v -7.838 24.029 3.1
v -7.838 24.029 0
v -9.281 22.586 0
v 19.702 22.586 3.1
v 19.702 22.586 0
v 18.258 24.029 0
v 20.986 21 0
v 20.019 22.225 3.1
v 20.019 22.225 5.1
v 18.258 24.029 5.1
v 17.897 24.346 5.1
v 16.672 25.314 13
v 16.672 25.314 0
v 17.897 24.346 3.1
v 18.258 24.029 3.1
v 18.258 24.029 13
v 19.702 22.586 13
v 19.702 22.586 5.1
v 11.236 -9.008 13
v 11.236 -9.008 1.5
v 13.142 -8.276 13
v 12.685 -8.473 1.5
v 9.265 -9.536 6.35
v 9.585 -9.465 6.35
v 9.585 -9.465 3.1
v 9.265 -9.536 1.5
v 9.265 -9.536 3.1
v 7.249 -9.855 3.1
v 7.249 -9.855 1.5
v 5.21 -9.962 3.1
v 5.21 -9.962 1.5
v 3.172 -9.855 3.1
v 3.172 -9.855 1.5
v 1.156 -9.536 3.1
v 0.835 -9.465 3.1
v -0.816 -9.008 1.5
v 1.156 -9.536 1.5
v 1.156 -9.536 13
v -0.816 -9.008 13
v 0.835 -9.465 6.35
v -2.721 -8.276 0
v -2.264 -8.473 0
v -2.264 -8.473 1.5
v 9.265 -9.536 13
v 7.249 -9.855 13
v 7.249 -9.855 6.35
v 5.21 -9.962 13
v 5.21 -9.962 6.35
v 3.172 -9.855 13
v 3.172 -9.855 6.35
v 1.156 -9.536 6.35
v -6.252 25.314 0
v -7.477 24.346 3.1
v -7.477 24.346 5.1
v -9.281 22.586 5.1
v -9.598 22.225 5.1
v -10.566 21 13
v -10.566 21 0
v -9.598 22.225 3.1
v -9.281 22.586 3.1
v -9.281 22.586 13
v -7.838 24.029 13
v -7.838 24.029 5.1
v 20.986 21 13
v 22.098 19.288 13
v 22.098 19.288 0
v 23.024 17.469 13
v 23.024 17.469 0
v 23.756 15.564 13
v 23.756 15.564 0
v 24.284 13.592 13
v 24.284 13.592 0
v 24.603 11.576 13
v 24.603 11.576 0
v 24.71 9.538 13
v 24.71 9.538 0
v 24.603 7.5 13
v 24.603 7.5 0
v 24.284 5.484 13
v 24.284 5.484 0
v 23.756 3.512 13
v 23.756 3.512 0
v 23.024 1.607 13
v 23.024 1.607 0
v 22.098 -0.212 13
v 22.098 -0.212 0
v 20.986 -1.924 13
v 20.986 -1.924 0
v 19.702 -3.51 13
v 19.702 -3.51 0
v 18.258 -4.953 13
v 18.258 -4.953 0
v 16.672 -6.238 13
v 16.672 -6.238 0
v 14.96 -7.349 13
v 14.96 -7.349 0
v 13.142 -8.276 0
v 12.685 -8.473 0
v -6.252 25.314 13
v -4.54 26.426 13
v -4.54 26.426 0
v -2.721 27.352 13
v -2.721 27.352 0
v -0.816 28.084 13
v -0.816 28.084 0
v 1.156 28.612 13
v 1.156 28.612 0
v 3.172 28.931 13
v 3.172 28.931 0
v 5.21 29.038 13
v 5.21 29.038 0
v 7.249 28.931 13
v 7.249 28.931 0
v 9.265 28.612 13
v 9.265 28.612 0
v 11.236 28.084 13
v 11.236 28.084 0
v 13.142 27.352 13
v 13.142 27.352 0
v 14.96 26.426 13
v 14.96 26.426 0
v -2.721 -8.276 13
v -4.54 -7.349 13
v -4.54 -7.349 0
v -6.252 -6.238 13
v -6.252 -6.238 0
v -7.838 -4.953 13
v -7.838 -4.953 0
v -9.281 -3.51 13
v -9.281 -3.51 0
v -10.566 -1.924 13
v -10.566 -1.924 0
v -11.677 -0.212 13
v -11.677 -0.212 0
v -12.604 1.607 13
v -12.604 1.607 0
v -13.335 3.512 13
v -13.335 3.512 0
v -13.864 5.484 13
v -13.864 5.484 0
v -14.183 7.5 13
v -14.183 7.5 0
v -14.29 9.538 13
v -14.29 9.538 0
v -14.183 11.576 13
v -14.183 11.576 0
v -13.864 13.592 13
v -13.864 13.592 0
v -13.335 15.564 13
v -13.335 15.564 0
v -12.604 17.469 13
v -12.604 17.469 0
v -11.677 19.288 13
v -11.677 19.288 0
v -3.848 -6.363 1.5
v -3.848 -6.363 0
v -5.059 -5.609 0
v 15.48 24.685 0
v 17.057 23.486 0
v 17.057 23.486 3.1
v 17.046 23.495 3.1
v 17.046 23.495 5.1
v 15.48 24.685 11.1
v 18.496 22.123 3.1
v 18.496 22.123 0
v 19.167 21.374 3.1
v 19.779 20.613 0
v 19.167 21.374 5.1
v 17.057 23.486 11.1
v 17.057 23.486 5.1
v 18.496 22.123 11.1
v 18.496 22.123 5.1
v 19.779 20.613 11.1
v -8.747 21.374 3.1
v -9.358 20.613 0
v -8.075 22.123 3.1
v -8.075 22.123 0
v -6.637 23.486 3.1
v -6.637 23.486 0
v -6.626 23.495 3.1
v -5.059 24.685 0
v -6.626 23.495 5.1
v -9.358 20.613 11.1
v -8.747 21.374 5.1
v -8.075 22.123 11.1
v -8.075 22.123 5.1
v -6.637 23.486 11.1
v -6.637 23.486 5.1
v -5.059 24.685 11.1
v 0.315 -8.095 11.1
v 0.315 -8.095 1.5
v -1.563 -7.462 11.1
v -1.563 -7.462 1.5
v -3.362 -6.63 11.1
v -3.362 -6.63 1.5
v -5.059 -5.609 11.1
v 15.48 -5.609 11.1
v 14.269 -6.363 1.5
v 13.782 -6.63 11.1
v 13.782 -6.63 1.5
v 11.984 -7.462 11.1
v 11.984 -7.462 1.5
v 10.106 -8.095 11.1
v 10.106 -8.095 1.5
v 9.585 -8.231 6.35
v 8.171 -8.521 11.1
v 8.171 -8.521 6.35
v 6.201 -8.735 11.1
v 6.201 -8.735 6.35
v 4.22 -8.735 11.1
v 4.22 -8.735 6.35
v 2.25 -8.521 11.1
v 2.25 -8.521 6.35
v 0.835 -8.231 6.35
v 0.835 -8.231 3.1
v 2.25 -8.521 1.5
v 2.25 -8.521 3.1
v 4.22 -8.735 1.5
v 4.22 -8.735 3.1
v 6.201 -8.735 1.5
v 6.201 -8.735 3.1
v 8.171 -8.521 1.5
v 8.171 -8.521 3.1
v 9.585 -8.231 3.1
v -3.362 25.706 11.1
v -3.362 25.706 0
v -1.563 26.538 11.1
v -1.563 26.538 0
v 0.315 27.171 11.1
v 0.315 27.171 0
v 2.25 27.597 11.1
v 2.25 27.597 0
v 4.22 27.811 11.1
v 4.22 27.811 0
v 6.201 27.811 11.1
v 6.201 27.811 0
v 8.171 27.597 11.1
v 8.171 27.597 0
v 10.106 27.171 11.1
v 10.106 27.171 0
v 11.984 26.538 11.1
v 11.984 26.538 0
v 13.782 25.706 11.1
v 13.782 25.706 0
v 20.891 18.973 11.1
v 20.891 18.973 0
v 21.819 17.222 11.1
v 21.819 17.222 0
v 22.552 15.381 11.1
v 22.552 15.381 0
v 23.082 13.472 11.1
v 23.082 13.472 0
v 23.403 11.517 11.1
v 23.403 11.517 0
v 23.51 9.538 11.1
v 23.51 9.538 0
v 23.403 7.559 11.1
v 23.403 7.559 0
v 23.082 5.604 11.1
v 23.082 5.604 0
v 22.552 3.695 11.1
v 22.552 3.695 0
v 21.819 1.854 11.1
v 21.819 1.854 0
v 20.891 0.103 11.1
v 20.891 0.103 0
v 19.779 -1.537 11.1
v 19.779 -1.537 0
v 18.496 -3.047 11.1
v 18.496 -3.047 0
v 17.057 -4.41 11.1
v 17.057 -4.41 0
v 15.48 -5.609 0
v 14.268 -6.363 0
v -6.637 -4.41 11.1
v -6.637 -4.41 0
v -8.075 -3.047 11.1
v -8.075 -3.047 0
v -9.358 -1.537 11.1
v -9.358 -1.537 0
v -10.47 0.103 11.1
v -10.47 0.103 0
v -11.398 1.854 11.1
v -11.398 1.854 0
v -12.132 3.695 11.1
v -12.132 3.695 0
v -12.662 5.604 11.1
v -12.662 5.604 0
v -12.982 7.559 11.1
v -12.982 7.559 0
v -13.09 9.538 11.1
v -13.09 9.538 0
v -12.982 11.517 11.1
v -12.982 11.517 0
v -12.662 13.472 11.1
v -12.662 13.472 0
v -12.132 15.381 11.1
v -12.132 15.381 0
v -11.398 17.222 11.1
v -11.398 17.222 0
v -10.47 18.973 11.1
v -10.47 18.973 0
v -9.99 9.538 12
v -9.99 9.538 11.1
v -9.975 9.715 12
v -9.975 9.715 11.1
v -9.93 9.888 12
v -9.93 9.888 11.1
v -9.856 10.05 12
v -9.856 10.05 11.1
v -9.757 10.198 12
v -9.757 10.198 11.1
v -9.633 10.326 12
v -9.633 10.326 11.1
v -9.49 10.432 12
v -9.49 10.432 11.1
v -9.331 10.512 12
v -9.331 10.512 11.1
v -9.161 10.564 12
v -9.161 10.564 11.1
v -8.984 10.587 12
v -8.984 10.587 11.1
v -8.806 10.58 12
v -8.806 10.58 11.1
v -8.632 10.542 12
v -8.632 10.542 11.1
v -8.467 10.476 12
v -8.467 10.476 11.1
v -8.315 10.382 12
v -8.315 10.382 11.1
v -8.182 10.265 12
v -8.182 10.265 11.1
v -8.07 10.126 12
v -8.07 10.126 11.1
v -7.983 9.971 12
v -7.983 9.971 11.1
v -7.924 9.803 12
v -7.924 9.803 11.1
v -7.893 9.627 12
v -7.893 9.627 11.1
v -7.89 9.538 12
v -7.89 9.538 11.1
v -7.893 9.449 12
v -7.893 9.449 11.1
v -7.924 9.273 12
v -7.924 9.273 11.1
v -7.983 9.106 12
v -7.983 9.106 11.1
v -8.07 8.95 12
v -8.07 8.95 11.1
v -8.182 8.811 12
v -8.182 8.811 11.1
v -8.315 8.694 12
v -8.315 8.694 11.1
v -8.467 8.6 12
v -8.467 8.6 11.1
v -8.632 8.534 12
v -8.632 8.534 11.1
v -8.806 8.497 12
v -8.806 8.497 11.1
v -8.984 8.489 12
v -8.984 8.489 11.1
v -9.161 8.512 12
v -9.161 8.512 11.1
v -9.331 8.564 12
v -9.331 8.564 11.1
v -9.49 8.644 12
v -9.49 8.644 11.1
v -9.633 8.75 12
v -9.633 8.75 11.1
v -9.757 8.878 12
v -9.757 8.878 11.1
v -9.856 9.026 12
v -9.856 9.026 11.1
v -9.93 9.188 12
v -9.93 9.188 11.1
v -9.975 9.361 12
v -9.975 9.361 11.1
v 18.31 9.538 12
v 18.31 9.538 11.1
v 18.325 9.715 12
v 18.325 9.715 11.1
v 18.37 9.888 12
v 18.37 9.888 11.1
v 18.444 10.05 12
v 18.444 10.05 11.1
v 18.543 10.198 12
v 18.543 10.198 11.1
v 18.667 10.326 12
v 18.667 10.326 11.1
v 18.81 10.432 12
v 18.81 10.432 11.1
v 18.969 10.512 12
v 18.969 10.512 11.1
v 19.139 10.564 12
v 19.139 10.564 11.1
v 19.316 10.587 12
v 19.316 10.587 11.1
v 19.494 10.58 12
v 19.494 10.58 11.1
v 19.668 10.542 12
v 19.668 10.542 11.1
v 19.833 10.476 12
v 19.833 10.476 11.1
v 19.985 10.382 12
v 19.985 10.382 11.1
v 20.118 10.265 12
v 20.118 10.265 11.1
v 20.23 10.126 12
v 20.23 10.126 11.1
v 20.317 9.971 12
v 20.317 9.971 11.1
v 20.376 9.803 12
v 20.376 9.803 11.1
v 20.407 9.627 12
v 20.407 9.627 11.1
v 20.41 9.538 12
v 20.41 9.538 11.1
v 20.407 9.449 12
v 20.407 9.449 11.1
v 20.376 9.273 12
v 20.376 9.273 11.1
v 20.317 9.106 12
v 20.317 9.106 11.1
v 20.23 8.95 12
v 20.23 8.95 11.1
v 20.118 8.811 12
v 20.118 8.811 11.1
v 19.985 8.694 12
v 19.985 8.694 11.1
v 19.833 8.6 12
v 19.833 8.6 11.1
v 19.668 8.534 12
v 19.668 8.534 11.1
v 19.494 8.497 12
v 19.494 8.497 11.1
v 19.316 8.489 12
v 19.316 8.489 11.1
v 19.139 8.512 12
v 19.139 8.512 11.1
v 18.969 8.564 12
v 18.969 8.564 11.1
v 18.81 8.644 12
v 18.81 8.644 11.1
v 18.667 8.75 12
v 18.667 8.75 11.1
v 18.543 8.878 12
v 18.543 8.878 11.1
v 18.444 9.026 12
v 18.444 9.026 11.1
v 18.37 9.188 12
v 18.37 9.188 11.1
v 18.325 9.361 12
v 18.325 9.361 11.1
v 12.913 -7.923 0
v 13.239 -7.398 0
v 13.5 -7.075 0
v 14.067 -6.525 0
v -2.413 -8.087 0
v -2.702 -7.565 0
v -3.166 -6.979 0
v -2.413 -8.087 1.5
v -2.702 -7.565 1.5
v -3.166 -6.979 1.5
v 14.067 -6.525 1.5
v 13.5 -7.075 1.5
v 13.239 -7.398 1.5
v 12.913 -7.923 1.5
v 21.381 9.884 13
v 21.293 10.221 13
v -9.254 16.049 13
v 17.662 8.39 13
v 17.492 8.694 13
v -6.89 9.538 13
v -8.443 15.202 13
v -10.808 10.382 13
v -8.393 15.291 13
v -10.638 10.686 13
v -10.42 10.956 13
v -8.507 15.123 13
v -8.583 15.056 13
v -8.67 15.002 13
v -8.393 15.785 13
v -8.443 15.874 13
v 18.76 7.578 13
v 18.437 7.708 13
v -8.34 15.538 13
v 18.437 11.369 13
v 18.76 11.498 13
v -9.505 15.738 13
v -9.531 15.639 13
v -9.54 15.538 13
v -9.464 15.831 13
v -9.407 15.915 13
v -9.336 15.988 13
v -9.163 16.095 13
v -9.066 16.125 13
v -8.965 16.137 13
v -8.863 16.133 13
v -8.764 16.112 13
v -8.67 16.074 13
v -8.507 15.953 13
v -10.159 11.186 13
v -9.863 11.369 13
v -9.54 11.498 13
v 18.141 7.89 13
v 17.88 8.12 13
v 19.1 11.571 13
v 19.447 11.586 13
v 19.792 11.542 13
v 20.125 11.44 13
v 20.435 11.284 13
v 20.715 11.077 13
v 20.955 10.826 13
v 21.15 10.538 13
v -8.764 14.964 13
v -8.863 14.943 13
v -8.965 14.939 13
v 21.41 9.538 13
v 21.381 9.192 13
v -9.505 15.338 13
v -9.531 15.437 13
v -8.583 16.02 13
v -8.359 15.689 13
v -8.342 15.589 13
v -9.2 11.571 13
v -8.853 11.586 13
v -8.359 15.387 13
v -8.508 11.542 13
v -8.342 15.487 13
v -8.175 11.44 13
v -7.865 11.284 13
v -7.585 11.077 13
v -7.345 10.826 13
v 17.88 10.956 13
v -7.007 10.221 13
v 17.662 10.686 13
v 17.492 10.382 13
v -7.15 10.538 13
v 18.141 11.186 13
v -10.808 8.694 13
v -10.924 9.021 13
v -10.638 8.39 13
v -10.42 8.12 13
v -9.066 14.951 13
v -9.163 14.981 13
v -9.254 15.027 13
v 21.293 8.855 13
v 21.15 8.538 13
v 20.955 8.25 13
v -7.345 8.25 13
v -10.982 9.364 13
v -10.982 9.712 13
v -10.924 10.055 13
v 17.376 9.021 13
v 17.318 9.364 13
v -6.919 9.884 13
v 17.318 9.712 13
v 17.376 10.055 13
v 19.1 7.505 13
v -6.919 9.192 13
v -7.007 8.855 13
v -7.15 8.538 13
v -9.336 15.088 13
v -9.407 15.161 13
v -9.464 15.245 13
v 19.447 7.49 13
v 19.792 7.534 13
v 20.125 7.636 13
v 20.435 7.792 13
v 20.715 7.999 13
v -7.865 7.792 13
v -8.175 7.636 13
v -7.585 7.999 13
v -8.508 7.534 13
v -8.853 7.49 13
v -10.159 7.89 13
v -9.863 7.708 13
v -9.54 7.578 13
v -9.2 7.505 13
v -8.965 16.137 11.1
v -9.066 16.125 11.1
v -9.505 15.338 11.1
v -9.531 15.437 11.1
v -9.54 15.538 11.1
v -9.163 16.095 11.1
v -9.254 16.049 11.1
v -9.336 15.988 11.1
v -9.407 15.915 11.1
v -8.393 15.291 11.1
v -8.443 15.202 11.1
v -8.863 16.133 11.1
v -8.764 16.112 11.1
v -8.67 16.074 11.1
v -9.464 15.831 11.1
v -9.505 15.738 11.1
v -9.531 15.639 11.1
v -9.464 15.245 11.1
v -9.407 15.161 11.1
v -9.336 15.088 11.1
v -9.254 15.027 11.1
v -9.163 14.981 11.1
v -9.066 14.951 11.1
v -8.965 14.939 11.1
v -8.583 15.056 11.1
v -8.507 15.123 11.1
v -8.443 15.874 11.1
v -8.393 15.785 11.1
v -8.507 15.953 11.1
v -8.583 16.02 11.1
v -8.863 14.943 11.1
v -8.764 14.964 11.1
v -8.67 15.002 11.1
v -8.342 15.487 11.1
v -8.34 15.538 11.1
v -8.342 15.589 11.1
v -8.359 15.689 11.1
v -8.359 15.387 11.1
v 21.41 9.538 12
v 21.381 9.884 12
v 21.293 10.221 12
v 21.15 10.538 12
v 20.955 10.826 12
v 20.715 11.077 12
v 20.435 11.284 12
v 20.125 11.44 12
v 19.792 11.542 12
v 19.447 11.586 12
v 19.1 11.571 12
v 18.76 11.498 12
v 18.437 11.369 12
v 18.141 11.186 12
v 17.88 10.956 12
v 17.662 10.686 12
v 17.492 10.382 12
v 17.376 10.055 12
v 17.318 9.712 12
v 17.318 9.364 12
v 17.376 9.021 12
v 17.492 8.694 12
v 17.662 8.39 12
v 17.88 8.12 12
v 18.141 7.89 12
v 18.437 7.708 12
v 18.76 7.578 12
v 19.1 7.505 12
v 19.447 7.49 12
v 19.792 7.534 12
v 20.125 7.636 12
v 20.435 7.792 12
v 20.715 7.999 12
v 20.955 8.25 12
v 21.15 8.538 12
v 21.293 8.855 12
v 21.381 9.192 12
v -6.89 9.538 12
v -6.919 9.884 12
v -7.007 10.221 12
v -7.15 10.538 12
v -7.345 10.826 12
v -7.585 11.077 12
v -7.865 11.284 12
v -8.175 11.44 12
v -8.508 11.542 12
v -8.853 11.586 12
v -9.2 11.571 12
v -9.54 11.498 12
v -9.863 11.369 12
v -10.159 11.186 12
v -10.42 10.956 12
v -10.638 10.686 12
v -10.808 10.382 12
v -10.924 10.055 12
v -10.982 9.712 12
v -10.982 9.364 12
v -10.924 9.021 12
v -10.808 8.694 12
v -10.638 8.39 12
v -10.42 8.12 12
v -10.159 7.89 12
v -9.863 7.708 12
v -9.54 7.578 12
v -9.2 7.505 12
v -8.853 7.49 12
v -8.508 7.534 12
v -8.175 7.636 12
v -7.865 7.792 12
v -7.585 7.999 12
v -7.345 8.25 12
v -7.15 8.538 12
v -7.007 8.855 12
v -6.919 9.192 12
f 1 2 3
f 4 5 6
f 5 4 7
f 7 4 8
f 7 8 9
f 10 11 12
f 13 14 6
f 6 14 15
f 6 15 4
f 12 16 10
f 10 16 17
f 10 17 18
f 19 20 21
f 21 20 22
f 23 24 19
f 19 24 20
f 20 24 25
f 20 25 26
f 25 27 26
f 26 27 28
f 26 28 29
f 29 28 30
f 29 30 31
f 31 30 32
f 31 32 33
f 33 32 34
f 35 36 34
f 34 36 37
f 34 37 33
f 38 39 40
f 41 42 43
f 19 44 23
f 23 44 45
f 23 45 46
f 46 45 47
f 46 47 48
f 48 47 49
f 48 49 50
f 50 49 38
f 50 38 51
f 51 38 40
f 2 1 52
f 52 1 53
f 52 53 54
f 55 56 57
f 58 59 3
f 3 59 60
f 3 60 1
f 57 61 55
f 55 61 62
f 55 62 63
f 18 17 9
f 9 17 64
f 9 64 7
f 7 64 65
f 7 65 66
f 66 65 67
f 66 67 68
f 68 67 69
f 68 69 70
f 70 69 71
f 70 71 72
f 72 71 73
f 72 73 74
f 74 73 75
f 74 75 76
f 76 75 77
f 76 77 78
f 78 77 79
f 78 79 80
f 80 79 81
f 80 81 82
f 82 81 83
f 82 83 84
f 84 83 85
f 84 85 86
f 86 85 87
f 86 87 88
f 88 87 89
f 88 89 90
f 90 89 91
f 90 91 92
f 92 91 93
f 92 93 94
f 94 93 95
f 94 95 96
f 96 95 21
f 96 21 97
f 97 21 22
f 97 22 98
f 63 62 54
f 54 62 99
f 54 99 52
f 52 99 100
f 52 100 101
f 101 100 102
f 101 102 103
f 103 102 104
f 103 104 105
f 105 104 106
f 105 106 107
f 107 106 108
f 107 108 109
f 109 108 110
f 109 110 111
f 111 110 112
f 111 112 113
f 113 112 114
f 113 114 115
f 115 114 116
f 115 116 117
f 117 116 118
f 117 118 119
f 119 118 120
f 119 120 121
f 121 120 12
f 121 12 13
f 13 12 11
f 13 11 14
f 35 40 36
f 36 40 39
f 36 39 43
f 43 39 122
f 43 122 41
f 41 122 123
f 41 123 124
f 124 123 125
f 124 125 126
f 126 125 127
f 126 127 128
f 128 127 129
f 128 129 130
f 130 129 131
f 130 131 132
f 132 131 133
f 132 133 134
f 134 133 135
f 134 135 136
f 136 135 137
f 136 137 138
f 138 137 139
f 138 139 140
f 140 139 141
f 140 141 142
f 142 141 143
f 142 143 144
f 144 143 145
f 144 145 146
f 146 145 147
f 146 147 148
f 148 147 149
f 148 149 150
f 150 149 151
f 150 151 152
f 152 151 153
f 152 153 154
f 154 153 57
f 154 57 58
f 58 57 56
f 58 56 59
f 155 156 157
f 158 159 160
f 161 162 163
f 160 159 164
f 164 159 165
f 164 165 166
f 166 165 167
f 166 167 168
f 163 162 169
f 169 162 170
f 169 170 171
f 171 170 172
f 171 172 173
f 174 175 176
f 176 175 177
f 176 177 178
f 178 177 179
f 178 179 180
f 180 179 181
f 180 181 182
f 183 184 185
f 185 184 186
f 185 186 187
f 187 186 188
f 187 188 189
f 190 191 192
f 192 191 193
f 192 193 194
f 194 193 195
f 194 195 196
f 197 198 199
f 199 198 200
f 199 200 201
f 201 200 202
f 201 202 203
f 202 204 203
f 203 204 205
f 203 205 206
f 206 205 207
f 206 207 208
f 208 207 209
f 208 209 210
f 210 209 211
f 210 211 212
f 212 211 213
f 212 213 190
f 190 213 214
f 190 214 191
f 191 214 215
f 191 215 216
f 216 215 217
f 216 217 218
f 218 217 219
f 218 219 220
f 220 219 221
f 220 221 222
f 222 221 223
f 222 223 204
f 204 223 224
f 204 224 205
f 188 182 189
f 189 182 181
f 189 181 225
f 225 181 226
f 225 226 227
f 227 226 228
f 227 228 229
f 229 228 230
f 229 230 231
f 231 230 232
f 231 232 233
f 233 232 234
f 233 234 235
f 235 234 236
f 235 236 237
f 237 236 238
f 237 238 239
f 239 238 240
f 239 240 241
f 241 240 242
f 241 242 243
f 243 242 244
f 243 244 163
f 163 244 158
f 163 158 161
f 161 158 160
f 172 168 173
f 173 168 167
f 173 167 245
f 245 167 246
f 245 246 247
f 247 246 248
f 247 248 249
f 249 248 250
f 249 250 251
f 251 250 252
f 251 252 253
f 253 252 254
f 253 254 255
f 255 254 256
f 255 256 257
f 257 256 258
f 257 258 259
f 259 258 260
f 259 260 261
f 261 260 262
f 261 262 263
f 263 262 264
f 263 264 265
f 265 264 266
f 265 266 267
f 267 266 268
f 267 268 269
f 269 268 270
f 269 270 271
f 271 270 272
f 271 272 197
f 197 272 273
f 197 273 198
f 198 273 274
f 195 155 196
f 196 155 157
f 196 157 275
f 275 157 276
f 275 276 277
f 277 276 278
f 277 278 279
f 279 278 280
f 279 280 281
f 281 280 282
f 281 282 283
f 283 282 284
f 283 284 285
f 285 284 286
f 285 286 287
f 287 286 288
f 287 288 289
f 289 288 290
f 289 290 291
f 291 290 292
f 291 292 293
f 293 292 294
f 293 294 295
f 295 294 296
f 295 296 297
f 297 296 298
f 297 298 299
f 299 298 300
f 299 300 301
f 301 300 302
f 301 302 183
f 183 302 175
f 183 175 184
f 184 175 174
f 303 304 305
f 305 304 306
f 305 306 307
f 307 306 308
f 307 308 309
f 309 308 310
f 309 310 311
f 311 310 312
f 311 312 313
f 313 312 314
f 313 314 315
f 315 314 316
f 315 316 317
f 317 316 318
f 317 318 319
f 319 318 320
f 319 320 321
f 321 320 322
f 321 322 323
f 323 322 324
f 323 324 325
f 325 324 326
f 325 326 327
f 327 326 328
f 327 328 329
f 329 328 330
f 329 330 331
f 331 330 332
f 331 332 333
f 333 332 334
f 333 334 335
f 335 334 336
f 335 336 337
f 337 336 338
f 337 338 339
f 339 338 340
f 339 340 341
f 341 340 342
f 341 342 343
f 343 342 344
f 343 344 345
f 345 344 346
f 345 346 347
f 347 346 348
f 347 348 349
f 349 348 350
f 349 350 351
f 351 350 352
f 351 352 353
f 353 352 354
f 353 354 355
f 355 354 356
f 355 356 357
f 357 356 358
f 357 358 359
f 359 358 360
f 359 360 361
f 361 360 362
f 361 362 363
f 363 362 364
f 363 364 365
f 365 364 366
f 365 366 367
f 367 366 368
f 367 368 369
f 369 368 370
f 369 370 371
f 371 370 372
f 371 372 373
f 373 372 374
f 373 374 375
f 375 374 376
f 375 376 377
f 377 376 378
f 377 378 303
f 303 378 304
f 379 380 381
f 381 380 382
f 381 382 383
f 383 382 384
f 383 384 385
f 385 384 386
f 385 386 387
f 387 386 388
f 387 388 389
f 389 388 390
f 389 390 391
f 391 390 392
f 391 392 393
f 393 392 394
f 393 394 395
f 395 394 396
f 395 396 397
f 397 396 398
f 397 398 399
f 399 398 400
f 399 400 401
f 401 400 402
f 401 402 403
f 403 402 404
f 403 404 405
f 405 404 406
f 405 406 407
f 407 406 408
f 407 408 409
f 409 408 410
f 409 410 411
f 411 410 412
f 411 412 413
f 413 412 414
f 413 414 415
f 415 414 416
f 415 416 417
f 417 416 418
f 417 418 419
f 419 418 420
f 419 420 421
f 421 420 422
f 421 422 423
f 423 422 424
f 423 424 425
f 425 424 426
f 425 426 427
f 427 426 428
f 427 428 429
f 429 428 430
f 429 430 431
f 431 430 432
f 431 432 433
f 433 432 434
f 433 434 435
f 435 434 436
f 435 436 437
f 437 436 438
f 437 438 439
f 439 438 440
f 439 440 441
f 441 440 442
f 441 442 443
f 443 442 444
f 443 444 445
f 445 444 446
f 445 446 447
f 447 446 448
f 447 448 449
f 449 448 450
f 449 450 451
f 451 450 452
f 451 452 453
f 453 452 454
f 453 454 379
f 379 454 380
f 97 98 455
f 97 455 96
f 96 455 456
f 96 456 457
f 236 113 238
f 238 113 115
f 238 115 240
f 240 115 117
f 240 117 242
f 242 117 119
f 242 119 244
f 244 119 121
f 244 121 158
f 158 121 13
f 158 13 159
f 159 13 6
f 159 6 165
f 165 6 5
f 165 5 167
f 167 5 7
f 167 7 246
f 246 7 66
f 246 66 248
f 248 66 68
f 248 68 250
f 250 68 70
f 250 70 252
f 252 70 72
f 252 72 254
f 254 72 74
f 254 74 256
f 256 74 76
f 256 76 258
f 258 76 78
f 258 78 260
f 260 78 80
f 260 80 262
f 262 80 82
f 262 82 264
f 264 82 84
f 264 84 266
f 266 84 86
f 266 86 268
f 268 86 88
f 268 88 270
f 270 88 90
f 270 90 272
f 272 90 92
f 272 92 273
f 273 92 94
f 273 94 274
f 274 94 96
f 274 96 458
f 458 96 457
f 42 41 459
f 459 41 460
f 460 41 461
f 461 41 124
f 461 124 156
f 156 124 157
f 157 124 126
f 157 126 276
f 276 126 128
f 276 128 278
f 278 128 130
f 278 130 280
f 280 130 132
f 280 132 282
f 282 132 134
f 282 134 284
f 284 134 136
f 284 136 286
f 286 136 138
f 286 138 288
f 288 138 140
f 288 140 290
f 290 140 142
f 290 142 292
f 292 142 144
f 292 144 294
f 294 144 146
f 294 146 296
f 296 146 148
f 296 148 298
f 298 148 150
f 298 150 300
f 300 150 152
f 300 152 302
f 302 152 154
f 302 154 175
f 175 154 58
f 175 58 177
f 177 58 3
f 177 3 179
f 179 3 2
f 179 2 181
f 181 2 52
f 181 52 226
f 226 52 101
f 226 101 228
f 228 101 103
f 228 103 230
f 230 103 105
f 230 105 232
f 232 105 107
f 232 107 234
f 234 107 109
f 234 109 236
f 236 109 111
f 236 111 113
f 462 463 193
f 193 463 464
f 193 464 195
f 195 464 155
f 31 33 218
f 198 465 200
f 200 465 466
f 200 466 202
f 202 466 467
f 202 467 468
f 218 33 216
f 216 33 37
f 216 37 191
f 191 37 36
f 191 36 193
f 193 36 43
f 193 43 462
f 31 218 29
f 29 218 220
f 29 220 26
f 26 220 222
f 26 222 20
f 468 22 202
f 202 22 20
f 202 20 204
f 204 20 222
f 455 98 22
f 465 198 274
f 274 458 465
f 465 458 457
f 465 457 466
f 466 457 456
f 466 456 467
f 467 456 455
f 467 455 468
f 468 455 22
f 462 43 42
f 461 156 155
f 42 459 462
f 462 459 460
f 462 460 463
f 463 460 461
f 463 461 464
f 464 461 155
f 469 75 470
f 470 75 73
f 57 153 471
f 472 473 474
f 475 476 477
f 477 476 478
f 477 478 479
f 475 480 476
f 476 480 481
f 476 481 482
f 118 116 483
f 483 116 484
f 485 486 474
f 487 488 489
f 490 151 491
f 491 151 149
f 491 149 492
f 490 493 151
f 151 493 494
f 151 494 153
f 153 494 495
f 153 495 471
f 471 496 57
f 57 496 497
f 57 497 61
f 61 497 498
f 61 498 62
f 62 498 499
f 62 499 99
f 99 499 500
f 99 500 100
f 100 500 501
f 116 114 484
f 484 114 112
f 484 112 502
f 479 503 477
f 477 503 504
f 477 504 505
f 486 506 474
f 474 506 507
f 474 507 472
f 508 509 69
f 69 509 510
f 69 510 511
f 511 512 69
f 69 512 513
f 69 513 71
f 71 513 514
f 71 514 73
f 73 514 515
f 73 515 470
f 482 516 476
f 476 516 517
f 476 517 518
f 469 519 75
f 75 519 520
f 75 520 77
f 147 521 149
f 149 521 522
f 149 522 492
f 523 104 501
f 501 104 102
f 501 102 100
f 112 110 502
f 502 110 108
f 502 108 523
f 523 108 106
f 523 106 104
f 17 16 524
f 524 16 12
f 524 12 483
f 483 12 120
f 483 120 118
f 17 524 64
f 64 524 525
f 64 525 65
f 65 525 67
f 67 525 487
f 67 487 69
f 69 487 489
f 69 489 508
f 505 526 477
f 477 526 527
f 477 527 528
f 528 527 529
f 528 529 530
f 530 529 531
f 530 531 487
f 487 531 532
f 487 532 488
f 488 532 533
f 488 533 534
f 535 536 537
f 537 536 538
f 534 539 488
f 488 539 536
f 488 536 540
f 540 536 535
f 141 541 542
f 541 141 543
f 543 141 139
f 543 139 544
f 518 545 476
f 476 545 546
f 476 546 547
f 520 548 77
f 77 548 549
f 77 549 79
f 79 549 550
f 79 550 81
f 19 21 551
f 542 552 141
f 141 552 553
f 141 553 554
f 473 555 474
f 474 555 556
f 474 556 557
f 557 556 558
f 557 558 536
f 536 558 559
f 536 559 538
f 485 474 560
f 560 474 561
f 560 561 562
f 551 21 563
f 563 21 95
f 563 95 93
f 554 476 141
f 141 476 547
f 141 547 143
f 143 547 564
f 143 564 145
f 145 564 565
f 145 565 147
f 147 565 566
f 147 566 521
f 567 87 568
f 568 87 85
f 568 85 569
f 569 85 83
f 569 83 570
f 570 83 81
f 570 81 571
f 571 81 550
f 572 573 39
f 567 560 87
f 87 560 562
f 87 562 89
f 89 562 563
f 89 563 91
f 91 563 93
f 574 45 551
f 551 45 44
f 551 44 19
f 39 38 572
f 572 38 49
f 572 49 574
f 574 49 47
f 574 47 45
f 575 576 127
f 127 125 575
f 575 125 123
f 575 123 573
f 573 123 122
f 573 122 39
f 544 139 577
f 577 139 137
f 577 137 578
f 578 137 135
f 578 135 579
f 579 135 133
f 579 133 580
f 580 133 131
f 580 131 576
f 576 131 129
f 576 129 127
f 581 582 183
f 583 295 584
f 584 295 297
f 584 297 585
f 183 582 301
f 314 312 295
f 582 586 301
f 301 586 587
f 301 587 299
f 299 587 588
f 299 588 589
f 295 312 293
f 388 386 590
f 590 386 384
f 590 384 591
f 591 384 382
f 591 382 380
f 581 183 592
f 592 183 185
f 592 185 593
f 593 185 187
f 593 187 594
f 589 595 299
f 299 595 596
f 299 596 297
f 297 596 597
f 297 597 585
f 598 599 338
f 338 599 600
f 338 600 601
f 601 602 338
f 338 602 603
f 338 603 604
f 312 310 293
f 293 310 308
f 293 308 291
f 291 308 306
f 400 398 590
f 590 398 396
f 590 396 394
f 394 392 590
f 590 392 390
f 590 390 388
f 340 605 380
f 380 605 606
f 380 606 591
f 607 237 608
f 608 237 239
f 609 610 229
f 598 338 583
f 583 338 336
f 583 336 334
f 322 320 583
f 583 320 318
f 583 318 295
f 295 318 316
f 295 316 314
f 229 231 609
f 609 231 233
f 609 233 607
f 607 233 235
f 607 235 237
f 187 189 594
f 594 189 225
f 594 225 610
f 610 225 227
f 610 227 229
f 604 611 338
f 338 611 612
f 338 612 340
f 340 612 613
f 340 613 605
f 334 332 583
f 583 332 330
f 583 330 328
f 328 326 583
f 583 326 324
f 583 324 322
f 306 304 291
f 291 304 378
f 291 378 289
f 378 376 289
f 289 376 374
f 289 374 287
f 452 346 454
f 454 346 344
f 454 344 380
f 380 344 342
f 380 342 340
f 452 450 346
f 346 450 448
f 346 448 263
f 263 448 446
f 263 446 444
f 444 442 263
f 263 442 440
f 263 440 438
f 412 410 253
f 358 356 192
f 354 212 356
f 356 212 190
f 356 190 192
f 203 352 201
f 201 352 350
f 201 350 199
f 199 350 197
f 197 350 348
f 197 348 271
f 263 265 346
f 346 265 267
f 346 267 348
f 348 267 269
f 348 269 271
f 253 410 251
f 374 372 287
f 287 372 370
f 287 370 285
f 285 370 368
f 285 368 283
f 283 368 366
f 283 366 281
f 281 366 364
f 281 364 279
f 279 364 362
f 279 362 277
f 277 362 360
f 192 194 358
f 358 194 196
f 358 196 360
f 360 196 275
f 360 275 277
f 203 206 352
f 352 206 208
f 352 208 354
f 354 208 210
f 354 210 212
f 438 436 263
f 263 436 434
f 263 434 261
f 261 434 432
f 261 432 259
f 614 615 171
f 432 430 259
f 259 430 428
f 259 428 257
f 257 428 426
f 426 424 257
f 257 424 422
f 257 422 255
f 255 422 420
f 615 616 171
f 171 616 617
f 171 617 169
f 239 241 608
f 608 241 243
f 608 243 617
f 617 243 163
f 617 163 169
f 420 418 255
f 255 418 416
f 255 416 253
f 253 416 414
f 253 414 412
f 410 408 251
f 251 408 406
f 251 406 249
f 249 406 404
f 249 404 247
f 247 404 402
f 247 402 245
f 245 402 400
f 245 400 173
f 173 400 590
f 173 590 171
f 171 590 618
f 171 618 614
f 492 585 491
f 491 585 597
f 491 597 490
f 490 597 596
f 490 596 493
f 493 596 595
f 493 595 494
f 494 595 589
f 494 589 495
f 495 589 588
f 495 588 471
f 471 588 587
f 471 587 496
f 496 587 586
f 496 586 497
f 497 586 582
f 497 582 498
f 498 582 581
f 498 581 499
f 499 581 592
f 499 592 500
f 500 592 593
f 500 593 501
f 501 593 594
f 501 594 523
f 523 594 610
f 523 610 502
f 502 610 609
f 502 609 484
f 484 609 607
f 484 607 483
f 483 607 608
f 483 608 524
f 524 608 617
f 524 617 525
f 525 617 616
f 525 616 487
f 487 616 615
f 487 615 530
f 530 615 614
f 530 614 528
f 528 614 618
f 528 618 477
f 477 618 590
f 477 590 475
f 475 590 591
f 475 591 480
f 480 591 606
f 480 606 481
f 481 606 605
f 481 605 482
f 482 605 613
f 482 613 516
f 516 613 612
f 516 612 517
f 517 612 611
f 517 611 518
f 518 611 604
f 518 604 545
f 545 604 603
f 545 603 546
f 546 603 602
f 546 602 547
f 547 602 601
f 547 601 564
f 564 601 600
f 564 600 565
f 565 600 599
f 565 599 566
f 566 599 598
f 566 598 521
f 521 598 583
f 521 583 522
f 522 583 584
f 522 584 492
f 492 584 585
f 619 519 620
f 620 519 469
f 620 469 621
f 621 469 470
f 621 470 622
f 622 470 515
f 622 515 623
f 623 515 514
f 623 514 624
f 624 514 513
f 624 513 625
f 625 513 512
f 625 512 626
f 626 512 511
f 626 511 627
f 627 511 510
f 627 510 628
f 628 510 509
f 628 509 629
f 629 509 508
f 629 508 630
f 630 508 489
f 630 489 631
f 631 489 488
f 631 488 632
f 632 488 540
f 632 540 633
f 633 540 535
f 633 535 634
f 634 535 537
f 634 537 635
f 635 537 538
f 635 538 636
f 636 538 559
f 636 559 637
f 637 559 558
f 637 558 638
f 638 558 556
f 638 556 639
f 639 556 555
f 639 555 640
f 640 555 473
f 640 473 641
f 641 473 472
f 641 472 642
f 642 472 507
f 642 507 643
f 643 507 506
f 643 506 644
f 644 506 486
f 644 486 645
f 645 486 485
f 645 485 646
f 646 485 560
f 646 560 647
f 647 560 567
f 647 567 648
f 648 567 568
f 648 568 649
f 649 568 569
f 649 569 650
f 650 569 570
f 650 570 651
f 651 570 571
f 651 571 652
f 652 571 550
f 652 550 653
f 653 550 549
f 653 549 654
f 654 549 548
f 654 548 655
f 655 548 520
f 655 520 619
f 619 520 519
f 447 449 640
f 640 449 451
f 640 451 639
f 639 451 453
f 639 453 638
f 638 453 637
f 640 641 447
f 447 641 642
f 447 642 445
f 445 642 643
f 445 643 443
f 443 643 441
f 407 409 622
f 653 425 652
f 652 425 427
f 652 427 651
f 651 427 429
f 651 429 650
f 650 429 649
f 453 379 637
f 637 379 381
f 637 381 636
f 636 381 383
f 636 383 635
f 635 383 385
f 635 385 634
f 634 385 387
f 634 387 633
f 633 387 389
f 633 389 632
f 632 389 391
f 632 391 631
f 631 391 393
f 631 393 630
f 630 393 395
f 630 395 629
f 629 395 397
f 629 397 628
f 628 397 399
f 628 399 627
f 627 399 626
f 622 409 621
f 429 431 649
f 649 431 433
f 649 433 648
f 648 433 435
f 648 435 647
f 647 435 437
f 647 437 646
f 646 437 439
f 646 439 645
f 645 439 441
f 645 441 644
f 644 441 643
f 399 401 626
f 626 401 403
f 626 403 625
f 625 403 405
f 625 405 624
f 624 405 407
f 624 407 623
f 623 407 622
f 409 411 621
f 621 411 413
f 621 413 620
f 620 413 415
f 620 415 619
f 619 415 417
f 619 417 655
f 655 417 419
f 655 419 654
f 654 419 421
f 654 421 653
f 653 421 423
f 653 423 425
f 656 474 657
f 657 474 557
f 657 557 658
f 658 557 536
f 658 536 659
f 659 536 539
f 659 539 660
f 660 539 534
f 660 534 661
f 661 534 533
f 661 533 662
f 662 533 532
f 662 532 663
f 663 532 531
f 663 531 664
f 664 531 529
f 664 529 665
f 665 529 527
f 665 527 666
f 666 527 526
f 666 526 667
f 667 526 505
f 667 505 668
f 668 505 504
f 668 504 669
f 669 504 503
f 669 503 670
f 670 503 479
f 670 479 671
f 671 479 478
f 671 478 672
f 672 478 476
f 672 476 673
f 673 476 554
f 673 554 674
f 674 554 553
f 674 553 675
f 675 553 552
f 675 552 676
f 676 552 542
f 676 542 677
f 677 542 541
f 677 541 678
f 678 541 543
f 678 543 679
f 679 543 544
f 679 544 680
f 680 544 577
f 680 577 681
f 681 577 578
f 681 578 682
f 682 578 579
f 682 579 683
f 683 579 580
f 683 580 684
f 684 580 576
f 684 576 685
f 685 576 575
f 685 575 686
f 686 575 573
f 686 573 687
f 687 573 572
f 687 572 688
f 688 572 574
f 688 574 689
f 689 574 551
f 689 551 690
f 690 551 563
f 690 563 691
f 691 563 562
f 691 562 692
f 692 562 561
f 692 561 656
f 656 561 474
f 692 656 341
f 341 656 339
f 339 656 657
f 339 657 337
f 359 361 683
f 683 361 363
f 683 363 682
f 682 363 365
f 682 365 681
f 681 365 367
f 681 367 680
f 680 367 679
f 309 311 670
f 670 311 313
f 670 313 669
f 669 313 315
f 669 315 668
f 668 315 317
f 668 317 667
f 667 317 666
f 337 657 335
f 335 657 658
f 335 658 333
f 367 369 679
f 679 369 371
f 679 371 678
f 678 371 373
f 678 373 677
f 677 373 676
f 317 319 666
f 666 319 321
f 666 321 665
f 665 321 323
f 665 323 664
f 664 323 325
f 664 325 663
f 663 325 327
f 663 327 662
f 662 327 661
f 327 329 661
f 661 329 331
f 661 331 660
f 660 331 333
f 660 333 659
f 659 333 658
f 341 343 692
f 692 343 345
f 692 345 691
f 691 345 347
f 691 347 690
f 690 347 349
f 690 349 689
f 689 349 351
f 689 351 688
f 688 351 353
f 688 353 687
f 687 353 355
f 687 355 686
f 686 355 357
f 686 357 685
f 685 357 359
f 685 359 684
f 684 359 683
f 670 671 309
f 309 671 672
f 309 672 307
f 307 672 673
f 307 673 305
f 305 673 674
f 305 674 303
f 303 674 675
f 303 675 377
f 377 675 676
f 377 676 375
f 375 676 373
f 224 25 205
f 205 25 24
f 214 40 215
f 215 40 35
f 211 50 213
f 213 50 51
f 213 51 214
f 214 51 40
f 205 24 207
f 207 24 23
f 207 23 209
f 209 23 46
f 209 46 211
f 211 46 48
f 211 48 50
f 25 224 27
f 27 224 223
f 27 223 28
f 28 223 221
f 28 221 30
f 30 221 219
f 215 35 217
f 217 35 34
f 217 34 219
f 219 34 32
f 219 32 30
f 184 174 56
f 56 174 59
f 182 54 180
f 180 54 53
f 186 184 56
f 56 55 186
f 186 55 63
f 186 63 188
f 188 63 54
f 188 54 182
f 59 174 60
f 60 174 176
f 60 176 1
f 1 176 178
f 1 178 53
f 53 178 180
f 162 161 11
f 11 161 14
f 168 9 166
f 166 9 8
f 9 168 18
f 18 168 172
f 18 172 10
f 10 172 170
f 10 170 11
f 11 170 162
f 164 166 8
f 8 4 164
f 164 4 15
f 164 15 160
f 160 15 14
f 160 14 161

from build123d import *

# Parameters (mm, degrees)
SKETCH_2_R          = 19.5
EXTRUDE_1_DEPTH     = 13
CUT_EXTRUDE_1_DEPTH = 1.5
SKETCH_4_R          = 18.3
CUT_EXTRUDE_2_DEPTH = 11.1
SKETCH_5_R          = 1.05
SKETCH_5_R_2        = 0.6
CUT_EXTRUDE_3_DEPTH = 41.284008974
SKETCH_6_R          = 2.05
CUT_EXTRUDE_4_DEPTH = 1
SKETCH_8_W          = 8.75
SKETCH_8_H          = 7.3
CUT_EXTRUDE_5_DEPTH = 3.25
CUT_EXTRUDE_6_DEPTH = 2


with BuildPart() as part:
    # 草图2 → 凸台-拉伸1 (new body)
    with BuildSketch(Plane.XY):
        with Locations(Location((5.210280057, 9.537965238, 0), (0, 0, 180))):
            Circle(SKETCH_2_R)
    extrude(amount=EXTRUDE_1_DEPTH)

    # 草图3 → 切除-拉伸1 (cut)
    with BuildSketch(Plane.XY):
        with BuildLine():
            ThreePointArc((-2.089466108, -9.474373158), (5.210280057, -10.827576871), (12.510026223, -9.474373158))
            add(Edge.make_bspline(
                [(12.510026223, -9.474373158), (12.542948952, -8.674555972), (12.802081824, -7.965268064), (13.798852187, -6.666991519), (14.542722505, -6.079743438), (15.544339227, -5.564922601)],
                knots=[0, 0, 0, 0, 0.5, 0.5, 1, 1, 1, 1], degree=3))
            ThreePointArc((15.544339227, -5.564922601), (5.210280058, 27.837965238), (-5.123779113, -5.564922601))
            add(Edge.make_bspline(
                [(-5.123779113, -5.564922601), (-4.122162391, -6.079743437), (-3.378292072, -6.666991518), (-2.381521709, -7.965268064), (-2.122388837, -8.674555972), (-2.089466108, -9.474373158)],
                knots=[0, 0, 0, 0, 0.5, 0.5, 1, 1, 1, 1], degree=3))
        make_face()
    extrude(amount=CUT_EXTRUDE_1_DEPTH, mode=Mode.SUBTRACT)

    # 草图4 → 切除-拉伸2 (cut)
    with BuildSketch(Plane.XY):
        with Locations(Location((5.210280057, 9.537965238, 0), (0, 0, 240.328288749))):
            Circle(SKETCH_4_R)
    extrude(amount=CUT_EXTRUDE_2_DEPTH, mode=Mode.SUBTRACT)

    # 草图5 → 切除-拉伸3 (cut, through all)
    with BuildSketch(Plane.XY):
        with Locations(Location((19.360280057, 9.537965238, 0), (0, 0, 180))):
            Circle(SKETCH_5_R)
        with Locations(Location((-8.939719943, 9.537965238, 0), (0, 0, 180))):
            Circle(SKETCH_5_R)
        with Locations((-8.939719943, 15.537965238)):
            Circle(SKETCH_5_R_2)
    extrude(amount=CUT_EXTRUDE_3_DEPTH, mode=Mode.SUBTRACT)

    # 草图6 → 切除-拉伸4 (cut)
    with BuildSketch(Plane.XY.offset(13)):
        with Locations((-8.939719943, 9.537965238)):
            Circle(SKETCH_6_R)
        with Locations((19.360280057, 9.537965238)):
            Circle(SKETCH_6_R)
    extrude(amount=-CUT_EXTRUDE_4_DEPTH, mode=Mode.SUBTRACT)

    # 草图8 → 切除-拉伸5 (cut)
    with BuildSketch(Plane(origin=(0, 0, 3.1), x_dir=(-1, 0, 0), z_dir=(0, 0, -1))):
        with Locations((-5.210300293, -6.312034762)):
            Rectangle(SKETCH_8_W, SKETCH_8_H)
    extrude(amount=-CUT_EXTRUDE_5_DEPTH, mode=Mode.SUBTRACT)

    # 草图9 → 切除-拉伸6 (cut)
    with BuildSketch(Plane(origin=(0, 0, 3.1), x_dir=(-1, 0, 0), z_dir=(0, 0, -1))):
        with BuildLine():
            ThreePointArc((-20.059522462, 24.387207643), (-20.580706206, 23.847053259), (-21.082253473, 23.28861831))
            Line((-21.082253473, 23.28861831), (-18.998862291, 21.205227127))
            Line((-18.998862291, 21.205227127), (-17.938202119, 22.265887299))
            Line((-17.938202119, 22.265887299), (-16.877541947, 23.326547471))
            Line((-16.877541947, 23.326547471), (-18.960933129, 25.409938653))
            ThreePointArc((-18.960933129, 25.409938653), (-19.519368079, 24.908391387), (-20.059522462, 24.387207643))
        make_face()
        with BuildLine():
            Line((8.578302176, 21.205227127), (10.661693358, 23.28861831))
            ThreePointArc((10.661693358, 23.28861831), (10.160146112, 23.847053237), (9.638962389, 24.387207601))
            ThreePointArc((9.638962389, 24.387207601), (9.098807986, 24.908391366), (8.540373014, 25.409938653))
            Line((8.540373014, 25.409938653), (6.456981832, 23.326547471))
            Line((6.456981832, 23.326547471), (7.517642025, 22.265887278))
            Line((7.517642025, 22.265887278), (8.578302176, 21.205227127))
        make_face()
    extrude(amount=-CUT_EXTRUDE_6_DEPTH, mode=Mode.SUBTRACT)


solid = part.part
